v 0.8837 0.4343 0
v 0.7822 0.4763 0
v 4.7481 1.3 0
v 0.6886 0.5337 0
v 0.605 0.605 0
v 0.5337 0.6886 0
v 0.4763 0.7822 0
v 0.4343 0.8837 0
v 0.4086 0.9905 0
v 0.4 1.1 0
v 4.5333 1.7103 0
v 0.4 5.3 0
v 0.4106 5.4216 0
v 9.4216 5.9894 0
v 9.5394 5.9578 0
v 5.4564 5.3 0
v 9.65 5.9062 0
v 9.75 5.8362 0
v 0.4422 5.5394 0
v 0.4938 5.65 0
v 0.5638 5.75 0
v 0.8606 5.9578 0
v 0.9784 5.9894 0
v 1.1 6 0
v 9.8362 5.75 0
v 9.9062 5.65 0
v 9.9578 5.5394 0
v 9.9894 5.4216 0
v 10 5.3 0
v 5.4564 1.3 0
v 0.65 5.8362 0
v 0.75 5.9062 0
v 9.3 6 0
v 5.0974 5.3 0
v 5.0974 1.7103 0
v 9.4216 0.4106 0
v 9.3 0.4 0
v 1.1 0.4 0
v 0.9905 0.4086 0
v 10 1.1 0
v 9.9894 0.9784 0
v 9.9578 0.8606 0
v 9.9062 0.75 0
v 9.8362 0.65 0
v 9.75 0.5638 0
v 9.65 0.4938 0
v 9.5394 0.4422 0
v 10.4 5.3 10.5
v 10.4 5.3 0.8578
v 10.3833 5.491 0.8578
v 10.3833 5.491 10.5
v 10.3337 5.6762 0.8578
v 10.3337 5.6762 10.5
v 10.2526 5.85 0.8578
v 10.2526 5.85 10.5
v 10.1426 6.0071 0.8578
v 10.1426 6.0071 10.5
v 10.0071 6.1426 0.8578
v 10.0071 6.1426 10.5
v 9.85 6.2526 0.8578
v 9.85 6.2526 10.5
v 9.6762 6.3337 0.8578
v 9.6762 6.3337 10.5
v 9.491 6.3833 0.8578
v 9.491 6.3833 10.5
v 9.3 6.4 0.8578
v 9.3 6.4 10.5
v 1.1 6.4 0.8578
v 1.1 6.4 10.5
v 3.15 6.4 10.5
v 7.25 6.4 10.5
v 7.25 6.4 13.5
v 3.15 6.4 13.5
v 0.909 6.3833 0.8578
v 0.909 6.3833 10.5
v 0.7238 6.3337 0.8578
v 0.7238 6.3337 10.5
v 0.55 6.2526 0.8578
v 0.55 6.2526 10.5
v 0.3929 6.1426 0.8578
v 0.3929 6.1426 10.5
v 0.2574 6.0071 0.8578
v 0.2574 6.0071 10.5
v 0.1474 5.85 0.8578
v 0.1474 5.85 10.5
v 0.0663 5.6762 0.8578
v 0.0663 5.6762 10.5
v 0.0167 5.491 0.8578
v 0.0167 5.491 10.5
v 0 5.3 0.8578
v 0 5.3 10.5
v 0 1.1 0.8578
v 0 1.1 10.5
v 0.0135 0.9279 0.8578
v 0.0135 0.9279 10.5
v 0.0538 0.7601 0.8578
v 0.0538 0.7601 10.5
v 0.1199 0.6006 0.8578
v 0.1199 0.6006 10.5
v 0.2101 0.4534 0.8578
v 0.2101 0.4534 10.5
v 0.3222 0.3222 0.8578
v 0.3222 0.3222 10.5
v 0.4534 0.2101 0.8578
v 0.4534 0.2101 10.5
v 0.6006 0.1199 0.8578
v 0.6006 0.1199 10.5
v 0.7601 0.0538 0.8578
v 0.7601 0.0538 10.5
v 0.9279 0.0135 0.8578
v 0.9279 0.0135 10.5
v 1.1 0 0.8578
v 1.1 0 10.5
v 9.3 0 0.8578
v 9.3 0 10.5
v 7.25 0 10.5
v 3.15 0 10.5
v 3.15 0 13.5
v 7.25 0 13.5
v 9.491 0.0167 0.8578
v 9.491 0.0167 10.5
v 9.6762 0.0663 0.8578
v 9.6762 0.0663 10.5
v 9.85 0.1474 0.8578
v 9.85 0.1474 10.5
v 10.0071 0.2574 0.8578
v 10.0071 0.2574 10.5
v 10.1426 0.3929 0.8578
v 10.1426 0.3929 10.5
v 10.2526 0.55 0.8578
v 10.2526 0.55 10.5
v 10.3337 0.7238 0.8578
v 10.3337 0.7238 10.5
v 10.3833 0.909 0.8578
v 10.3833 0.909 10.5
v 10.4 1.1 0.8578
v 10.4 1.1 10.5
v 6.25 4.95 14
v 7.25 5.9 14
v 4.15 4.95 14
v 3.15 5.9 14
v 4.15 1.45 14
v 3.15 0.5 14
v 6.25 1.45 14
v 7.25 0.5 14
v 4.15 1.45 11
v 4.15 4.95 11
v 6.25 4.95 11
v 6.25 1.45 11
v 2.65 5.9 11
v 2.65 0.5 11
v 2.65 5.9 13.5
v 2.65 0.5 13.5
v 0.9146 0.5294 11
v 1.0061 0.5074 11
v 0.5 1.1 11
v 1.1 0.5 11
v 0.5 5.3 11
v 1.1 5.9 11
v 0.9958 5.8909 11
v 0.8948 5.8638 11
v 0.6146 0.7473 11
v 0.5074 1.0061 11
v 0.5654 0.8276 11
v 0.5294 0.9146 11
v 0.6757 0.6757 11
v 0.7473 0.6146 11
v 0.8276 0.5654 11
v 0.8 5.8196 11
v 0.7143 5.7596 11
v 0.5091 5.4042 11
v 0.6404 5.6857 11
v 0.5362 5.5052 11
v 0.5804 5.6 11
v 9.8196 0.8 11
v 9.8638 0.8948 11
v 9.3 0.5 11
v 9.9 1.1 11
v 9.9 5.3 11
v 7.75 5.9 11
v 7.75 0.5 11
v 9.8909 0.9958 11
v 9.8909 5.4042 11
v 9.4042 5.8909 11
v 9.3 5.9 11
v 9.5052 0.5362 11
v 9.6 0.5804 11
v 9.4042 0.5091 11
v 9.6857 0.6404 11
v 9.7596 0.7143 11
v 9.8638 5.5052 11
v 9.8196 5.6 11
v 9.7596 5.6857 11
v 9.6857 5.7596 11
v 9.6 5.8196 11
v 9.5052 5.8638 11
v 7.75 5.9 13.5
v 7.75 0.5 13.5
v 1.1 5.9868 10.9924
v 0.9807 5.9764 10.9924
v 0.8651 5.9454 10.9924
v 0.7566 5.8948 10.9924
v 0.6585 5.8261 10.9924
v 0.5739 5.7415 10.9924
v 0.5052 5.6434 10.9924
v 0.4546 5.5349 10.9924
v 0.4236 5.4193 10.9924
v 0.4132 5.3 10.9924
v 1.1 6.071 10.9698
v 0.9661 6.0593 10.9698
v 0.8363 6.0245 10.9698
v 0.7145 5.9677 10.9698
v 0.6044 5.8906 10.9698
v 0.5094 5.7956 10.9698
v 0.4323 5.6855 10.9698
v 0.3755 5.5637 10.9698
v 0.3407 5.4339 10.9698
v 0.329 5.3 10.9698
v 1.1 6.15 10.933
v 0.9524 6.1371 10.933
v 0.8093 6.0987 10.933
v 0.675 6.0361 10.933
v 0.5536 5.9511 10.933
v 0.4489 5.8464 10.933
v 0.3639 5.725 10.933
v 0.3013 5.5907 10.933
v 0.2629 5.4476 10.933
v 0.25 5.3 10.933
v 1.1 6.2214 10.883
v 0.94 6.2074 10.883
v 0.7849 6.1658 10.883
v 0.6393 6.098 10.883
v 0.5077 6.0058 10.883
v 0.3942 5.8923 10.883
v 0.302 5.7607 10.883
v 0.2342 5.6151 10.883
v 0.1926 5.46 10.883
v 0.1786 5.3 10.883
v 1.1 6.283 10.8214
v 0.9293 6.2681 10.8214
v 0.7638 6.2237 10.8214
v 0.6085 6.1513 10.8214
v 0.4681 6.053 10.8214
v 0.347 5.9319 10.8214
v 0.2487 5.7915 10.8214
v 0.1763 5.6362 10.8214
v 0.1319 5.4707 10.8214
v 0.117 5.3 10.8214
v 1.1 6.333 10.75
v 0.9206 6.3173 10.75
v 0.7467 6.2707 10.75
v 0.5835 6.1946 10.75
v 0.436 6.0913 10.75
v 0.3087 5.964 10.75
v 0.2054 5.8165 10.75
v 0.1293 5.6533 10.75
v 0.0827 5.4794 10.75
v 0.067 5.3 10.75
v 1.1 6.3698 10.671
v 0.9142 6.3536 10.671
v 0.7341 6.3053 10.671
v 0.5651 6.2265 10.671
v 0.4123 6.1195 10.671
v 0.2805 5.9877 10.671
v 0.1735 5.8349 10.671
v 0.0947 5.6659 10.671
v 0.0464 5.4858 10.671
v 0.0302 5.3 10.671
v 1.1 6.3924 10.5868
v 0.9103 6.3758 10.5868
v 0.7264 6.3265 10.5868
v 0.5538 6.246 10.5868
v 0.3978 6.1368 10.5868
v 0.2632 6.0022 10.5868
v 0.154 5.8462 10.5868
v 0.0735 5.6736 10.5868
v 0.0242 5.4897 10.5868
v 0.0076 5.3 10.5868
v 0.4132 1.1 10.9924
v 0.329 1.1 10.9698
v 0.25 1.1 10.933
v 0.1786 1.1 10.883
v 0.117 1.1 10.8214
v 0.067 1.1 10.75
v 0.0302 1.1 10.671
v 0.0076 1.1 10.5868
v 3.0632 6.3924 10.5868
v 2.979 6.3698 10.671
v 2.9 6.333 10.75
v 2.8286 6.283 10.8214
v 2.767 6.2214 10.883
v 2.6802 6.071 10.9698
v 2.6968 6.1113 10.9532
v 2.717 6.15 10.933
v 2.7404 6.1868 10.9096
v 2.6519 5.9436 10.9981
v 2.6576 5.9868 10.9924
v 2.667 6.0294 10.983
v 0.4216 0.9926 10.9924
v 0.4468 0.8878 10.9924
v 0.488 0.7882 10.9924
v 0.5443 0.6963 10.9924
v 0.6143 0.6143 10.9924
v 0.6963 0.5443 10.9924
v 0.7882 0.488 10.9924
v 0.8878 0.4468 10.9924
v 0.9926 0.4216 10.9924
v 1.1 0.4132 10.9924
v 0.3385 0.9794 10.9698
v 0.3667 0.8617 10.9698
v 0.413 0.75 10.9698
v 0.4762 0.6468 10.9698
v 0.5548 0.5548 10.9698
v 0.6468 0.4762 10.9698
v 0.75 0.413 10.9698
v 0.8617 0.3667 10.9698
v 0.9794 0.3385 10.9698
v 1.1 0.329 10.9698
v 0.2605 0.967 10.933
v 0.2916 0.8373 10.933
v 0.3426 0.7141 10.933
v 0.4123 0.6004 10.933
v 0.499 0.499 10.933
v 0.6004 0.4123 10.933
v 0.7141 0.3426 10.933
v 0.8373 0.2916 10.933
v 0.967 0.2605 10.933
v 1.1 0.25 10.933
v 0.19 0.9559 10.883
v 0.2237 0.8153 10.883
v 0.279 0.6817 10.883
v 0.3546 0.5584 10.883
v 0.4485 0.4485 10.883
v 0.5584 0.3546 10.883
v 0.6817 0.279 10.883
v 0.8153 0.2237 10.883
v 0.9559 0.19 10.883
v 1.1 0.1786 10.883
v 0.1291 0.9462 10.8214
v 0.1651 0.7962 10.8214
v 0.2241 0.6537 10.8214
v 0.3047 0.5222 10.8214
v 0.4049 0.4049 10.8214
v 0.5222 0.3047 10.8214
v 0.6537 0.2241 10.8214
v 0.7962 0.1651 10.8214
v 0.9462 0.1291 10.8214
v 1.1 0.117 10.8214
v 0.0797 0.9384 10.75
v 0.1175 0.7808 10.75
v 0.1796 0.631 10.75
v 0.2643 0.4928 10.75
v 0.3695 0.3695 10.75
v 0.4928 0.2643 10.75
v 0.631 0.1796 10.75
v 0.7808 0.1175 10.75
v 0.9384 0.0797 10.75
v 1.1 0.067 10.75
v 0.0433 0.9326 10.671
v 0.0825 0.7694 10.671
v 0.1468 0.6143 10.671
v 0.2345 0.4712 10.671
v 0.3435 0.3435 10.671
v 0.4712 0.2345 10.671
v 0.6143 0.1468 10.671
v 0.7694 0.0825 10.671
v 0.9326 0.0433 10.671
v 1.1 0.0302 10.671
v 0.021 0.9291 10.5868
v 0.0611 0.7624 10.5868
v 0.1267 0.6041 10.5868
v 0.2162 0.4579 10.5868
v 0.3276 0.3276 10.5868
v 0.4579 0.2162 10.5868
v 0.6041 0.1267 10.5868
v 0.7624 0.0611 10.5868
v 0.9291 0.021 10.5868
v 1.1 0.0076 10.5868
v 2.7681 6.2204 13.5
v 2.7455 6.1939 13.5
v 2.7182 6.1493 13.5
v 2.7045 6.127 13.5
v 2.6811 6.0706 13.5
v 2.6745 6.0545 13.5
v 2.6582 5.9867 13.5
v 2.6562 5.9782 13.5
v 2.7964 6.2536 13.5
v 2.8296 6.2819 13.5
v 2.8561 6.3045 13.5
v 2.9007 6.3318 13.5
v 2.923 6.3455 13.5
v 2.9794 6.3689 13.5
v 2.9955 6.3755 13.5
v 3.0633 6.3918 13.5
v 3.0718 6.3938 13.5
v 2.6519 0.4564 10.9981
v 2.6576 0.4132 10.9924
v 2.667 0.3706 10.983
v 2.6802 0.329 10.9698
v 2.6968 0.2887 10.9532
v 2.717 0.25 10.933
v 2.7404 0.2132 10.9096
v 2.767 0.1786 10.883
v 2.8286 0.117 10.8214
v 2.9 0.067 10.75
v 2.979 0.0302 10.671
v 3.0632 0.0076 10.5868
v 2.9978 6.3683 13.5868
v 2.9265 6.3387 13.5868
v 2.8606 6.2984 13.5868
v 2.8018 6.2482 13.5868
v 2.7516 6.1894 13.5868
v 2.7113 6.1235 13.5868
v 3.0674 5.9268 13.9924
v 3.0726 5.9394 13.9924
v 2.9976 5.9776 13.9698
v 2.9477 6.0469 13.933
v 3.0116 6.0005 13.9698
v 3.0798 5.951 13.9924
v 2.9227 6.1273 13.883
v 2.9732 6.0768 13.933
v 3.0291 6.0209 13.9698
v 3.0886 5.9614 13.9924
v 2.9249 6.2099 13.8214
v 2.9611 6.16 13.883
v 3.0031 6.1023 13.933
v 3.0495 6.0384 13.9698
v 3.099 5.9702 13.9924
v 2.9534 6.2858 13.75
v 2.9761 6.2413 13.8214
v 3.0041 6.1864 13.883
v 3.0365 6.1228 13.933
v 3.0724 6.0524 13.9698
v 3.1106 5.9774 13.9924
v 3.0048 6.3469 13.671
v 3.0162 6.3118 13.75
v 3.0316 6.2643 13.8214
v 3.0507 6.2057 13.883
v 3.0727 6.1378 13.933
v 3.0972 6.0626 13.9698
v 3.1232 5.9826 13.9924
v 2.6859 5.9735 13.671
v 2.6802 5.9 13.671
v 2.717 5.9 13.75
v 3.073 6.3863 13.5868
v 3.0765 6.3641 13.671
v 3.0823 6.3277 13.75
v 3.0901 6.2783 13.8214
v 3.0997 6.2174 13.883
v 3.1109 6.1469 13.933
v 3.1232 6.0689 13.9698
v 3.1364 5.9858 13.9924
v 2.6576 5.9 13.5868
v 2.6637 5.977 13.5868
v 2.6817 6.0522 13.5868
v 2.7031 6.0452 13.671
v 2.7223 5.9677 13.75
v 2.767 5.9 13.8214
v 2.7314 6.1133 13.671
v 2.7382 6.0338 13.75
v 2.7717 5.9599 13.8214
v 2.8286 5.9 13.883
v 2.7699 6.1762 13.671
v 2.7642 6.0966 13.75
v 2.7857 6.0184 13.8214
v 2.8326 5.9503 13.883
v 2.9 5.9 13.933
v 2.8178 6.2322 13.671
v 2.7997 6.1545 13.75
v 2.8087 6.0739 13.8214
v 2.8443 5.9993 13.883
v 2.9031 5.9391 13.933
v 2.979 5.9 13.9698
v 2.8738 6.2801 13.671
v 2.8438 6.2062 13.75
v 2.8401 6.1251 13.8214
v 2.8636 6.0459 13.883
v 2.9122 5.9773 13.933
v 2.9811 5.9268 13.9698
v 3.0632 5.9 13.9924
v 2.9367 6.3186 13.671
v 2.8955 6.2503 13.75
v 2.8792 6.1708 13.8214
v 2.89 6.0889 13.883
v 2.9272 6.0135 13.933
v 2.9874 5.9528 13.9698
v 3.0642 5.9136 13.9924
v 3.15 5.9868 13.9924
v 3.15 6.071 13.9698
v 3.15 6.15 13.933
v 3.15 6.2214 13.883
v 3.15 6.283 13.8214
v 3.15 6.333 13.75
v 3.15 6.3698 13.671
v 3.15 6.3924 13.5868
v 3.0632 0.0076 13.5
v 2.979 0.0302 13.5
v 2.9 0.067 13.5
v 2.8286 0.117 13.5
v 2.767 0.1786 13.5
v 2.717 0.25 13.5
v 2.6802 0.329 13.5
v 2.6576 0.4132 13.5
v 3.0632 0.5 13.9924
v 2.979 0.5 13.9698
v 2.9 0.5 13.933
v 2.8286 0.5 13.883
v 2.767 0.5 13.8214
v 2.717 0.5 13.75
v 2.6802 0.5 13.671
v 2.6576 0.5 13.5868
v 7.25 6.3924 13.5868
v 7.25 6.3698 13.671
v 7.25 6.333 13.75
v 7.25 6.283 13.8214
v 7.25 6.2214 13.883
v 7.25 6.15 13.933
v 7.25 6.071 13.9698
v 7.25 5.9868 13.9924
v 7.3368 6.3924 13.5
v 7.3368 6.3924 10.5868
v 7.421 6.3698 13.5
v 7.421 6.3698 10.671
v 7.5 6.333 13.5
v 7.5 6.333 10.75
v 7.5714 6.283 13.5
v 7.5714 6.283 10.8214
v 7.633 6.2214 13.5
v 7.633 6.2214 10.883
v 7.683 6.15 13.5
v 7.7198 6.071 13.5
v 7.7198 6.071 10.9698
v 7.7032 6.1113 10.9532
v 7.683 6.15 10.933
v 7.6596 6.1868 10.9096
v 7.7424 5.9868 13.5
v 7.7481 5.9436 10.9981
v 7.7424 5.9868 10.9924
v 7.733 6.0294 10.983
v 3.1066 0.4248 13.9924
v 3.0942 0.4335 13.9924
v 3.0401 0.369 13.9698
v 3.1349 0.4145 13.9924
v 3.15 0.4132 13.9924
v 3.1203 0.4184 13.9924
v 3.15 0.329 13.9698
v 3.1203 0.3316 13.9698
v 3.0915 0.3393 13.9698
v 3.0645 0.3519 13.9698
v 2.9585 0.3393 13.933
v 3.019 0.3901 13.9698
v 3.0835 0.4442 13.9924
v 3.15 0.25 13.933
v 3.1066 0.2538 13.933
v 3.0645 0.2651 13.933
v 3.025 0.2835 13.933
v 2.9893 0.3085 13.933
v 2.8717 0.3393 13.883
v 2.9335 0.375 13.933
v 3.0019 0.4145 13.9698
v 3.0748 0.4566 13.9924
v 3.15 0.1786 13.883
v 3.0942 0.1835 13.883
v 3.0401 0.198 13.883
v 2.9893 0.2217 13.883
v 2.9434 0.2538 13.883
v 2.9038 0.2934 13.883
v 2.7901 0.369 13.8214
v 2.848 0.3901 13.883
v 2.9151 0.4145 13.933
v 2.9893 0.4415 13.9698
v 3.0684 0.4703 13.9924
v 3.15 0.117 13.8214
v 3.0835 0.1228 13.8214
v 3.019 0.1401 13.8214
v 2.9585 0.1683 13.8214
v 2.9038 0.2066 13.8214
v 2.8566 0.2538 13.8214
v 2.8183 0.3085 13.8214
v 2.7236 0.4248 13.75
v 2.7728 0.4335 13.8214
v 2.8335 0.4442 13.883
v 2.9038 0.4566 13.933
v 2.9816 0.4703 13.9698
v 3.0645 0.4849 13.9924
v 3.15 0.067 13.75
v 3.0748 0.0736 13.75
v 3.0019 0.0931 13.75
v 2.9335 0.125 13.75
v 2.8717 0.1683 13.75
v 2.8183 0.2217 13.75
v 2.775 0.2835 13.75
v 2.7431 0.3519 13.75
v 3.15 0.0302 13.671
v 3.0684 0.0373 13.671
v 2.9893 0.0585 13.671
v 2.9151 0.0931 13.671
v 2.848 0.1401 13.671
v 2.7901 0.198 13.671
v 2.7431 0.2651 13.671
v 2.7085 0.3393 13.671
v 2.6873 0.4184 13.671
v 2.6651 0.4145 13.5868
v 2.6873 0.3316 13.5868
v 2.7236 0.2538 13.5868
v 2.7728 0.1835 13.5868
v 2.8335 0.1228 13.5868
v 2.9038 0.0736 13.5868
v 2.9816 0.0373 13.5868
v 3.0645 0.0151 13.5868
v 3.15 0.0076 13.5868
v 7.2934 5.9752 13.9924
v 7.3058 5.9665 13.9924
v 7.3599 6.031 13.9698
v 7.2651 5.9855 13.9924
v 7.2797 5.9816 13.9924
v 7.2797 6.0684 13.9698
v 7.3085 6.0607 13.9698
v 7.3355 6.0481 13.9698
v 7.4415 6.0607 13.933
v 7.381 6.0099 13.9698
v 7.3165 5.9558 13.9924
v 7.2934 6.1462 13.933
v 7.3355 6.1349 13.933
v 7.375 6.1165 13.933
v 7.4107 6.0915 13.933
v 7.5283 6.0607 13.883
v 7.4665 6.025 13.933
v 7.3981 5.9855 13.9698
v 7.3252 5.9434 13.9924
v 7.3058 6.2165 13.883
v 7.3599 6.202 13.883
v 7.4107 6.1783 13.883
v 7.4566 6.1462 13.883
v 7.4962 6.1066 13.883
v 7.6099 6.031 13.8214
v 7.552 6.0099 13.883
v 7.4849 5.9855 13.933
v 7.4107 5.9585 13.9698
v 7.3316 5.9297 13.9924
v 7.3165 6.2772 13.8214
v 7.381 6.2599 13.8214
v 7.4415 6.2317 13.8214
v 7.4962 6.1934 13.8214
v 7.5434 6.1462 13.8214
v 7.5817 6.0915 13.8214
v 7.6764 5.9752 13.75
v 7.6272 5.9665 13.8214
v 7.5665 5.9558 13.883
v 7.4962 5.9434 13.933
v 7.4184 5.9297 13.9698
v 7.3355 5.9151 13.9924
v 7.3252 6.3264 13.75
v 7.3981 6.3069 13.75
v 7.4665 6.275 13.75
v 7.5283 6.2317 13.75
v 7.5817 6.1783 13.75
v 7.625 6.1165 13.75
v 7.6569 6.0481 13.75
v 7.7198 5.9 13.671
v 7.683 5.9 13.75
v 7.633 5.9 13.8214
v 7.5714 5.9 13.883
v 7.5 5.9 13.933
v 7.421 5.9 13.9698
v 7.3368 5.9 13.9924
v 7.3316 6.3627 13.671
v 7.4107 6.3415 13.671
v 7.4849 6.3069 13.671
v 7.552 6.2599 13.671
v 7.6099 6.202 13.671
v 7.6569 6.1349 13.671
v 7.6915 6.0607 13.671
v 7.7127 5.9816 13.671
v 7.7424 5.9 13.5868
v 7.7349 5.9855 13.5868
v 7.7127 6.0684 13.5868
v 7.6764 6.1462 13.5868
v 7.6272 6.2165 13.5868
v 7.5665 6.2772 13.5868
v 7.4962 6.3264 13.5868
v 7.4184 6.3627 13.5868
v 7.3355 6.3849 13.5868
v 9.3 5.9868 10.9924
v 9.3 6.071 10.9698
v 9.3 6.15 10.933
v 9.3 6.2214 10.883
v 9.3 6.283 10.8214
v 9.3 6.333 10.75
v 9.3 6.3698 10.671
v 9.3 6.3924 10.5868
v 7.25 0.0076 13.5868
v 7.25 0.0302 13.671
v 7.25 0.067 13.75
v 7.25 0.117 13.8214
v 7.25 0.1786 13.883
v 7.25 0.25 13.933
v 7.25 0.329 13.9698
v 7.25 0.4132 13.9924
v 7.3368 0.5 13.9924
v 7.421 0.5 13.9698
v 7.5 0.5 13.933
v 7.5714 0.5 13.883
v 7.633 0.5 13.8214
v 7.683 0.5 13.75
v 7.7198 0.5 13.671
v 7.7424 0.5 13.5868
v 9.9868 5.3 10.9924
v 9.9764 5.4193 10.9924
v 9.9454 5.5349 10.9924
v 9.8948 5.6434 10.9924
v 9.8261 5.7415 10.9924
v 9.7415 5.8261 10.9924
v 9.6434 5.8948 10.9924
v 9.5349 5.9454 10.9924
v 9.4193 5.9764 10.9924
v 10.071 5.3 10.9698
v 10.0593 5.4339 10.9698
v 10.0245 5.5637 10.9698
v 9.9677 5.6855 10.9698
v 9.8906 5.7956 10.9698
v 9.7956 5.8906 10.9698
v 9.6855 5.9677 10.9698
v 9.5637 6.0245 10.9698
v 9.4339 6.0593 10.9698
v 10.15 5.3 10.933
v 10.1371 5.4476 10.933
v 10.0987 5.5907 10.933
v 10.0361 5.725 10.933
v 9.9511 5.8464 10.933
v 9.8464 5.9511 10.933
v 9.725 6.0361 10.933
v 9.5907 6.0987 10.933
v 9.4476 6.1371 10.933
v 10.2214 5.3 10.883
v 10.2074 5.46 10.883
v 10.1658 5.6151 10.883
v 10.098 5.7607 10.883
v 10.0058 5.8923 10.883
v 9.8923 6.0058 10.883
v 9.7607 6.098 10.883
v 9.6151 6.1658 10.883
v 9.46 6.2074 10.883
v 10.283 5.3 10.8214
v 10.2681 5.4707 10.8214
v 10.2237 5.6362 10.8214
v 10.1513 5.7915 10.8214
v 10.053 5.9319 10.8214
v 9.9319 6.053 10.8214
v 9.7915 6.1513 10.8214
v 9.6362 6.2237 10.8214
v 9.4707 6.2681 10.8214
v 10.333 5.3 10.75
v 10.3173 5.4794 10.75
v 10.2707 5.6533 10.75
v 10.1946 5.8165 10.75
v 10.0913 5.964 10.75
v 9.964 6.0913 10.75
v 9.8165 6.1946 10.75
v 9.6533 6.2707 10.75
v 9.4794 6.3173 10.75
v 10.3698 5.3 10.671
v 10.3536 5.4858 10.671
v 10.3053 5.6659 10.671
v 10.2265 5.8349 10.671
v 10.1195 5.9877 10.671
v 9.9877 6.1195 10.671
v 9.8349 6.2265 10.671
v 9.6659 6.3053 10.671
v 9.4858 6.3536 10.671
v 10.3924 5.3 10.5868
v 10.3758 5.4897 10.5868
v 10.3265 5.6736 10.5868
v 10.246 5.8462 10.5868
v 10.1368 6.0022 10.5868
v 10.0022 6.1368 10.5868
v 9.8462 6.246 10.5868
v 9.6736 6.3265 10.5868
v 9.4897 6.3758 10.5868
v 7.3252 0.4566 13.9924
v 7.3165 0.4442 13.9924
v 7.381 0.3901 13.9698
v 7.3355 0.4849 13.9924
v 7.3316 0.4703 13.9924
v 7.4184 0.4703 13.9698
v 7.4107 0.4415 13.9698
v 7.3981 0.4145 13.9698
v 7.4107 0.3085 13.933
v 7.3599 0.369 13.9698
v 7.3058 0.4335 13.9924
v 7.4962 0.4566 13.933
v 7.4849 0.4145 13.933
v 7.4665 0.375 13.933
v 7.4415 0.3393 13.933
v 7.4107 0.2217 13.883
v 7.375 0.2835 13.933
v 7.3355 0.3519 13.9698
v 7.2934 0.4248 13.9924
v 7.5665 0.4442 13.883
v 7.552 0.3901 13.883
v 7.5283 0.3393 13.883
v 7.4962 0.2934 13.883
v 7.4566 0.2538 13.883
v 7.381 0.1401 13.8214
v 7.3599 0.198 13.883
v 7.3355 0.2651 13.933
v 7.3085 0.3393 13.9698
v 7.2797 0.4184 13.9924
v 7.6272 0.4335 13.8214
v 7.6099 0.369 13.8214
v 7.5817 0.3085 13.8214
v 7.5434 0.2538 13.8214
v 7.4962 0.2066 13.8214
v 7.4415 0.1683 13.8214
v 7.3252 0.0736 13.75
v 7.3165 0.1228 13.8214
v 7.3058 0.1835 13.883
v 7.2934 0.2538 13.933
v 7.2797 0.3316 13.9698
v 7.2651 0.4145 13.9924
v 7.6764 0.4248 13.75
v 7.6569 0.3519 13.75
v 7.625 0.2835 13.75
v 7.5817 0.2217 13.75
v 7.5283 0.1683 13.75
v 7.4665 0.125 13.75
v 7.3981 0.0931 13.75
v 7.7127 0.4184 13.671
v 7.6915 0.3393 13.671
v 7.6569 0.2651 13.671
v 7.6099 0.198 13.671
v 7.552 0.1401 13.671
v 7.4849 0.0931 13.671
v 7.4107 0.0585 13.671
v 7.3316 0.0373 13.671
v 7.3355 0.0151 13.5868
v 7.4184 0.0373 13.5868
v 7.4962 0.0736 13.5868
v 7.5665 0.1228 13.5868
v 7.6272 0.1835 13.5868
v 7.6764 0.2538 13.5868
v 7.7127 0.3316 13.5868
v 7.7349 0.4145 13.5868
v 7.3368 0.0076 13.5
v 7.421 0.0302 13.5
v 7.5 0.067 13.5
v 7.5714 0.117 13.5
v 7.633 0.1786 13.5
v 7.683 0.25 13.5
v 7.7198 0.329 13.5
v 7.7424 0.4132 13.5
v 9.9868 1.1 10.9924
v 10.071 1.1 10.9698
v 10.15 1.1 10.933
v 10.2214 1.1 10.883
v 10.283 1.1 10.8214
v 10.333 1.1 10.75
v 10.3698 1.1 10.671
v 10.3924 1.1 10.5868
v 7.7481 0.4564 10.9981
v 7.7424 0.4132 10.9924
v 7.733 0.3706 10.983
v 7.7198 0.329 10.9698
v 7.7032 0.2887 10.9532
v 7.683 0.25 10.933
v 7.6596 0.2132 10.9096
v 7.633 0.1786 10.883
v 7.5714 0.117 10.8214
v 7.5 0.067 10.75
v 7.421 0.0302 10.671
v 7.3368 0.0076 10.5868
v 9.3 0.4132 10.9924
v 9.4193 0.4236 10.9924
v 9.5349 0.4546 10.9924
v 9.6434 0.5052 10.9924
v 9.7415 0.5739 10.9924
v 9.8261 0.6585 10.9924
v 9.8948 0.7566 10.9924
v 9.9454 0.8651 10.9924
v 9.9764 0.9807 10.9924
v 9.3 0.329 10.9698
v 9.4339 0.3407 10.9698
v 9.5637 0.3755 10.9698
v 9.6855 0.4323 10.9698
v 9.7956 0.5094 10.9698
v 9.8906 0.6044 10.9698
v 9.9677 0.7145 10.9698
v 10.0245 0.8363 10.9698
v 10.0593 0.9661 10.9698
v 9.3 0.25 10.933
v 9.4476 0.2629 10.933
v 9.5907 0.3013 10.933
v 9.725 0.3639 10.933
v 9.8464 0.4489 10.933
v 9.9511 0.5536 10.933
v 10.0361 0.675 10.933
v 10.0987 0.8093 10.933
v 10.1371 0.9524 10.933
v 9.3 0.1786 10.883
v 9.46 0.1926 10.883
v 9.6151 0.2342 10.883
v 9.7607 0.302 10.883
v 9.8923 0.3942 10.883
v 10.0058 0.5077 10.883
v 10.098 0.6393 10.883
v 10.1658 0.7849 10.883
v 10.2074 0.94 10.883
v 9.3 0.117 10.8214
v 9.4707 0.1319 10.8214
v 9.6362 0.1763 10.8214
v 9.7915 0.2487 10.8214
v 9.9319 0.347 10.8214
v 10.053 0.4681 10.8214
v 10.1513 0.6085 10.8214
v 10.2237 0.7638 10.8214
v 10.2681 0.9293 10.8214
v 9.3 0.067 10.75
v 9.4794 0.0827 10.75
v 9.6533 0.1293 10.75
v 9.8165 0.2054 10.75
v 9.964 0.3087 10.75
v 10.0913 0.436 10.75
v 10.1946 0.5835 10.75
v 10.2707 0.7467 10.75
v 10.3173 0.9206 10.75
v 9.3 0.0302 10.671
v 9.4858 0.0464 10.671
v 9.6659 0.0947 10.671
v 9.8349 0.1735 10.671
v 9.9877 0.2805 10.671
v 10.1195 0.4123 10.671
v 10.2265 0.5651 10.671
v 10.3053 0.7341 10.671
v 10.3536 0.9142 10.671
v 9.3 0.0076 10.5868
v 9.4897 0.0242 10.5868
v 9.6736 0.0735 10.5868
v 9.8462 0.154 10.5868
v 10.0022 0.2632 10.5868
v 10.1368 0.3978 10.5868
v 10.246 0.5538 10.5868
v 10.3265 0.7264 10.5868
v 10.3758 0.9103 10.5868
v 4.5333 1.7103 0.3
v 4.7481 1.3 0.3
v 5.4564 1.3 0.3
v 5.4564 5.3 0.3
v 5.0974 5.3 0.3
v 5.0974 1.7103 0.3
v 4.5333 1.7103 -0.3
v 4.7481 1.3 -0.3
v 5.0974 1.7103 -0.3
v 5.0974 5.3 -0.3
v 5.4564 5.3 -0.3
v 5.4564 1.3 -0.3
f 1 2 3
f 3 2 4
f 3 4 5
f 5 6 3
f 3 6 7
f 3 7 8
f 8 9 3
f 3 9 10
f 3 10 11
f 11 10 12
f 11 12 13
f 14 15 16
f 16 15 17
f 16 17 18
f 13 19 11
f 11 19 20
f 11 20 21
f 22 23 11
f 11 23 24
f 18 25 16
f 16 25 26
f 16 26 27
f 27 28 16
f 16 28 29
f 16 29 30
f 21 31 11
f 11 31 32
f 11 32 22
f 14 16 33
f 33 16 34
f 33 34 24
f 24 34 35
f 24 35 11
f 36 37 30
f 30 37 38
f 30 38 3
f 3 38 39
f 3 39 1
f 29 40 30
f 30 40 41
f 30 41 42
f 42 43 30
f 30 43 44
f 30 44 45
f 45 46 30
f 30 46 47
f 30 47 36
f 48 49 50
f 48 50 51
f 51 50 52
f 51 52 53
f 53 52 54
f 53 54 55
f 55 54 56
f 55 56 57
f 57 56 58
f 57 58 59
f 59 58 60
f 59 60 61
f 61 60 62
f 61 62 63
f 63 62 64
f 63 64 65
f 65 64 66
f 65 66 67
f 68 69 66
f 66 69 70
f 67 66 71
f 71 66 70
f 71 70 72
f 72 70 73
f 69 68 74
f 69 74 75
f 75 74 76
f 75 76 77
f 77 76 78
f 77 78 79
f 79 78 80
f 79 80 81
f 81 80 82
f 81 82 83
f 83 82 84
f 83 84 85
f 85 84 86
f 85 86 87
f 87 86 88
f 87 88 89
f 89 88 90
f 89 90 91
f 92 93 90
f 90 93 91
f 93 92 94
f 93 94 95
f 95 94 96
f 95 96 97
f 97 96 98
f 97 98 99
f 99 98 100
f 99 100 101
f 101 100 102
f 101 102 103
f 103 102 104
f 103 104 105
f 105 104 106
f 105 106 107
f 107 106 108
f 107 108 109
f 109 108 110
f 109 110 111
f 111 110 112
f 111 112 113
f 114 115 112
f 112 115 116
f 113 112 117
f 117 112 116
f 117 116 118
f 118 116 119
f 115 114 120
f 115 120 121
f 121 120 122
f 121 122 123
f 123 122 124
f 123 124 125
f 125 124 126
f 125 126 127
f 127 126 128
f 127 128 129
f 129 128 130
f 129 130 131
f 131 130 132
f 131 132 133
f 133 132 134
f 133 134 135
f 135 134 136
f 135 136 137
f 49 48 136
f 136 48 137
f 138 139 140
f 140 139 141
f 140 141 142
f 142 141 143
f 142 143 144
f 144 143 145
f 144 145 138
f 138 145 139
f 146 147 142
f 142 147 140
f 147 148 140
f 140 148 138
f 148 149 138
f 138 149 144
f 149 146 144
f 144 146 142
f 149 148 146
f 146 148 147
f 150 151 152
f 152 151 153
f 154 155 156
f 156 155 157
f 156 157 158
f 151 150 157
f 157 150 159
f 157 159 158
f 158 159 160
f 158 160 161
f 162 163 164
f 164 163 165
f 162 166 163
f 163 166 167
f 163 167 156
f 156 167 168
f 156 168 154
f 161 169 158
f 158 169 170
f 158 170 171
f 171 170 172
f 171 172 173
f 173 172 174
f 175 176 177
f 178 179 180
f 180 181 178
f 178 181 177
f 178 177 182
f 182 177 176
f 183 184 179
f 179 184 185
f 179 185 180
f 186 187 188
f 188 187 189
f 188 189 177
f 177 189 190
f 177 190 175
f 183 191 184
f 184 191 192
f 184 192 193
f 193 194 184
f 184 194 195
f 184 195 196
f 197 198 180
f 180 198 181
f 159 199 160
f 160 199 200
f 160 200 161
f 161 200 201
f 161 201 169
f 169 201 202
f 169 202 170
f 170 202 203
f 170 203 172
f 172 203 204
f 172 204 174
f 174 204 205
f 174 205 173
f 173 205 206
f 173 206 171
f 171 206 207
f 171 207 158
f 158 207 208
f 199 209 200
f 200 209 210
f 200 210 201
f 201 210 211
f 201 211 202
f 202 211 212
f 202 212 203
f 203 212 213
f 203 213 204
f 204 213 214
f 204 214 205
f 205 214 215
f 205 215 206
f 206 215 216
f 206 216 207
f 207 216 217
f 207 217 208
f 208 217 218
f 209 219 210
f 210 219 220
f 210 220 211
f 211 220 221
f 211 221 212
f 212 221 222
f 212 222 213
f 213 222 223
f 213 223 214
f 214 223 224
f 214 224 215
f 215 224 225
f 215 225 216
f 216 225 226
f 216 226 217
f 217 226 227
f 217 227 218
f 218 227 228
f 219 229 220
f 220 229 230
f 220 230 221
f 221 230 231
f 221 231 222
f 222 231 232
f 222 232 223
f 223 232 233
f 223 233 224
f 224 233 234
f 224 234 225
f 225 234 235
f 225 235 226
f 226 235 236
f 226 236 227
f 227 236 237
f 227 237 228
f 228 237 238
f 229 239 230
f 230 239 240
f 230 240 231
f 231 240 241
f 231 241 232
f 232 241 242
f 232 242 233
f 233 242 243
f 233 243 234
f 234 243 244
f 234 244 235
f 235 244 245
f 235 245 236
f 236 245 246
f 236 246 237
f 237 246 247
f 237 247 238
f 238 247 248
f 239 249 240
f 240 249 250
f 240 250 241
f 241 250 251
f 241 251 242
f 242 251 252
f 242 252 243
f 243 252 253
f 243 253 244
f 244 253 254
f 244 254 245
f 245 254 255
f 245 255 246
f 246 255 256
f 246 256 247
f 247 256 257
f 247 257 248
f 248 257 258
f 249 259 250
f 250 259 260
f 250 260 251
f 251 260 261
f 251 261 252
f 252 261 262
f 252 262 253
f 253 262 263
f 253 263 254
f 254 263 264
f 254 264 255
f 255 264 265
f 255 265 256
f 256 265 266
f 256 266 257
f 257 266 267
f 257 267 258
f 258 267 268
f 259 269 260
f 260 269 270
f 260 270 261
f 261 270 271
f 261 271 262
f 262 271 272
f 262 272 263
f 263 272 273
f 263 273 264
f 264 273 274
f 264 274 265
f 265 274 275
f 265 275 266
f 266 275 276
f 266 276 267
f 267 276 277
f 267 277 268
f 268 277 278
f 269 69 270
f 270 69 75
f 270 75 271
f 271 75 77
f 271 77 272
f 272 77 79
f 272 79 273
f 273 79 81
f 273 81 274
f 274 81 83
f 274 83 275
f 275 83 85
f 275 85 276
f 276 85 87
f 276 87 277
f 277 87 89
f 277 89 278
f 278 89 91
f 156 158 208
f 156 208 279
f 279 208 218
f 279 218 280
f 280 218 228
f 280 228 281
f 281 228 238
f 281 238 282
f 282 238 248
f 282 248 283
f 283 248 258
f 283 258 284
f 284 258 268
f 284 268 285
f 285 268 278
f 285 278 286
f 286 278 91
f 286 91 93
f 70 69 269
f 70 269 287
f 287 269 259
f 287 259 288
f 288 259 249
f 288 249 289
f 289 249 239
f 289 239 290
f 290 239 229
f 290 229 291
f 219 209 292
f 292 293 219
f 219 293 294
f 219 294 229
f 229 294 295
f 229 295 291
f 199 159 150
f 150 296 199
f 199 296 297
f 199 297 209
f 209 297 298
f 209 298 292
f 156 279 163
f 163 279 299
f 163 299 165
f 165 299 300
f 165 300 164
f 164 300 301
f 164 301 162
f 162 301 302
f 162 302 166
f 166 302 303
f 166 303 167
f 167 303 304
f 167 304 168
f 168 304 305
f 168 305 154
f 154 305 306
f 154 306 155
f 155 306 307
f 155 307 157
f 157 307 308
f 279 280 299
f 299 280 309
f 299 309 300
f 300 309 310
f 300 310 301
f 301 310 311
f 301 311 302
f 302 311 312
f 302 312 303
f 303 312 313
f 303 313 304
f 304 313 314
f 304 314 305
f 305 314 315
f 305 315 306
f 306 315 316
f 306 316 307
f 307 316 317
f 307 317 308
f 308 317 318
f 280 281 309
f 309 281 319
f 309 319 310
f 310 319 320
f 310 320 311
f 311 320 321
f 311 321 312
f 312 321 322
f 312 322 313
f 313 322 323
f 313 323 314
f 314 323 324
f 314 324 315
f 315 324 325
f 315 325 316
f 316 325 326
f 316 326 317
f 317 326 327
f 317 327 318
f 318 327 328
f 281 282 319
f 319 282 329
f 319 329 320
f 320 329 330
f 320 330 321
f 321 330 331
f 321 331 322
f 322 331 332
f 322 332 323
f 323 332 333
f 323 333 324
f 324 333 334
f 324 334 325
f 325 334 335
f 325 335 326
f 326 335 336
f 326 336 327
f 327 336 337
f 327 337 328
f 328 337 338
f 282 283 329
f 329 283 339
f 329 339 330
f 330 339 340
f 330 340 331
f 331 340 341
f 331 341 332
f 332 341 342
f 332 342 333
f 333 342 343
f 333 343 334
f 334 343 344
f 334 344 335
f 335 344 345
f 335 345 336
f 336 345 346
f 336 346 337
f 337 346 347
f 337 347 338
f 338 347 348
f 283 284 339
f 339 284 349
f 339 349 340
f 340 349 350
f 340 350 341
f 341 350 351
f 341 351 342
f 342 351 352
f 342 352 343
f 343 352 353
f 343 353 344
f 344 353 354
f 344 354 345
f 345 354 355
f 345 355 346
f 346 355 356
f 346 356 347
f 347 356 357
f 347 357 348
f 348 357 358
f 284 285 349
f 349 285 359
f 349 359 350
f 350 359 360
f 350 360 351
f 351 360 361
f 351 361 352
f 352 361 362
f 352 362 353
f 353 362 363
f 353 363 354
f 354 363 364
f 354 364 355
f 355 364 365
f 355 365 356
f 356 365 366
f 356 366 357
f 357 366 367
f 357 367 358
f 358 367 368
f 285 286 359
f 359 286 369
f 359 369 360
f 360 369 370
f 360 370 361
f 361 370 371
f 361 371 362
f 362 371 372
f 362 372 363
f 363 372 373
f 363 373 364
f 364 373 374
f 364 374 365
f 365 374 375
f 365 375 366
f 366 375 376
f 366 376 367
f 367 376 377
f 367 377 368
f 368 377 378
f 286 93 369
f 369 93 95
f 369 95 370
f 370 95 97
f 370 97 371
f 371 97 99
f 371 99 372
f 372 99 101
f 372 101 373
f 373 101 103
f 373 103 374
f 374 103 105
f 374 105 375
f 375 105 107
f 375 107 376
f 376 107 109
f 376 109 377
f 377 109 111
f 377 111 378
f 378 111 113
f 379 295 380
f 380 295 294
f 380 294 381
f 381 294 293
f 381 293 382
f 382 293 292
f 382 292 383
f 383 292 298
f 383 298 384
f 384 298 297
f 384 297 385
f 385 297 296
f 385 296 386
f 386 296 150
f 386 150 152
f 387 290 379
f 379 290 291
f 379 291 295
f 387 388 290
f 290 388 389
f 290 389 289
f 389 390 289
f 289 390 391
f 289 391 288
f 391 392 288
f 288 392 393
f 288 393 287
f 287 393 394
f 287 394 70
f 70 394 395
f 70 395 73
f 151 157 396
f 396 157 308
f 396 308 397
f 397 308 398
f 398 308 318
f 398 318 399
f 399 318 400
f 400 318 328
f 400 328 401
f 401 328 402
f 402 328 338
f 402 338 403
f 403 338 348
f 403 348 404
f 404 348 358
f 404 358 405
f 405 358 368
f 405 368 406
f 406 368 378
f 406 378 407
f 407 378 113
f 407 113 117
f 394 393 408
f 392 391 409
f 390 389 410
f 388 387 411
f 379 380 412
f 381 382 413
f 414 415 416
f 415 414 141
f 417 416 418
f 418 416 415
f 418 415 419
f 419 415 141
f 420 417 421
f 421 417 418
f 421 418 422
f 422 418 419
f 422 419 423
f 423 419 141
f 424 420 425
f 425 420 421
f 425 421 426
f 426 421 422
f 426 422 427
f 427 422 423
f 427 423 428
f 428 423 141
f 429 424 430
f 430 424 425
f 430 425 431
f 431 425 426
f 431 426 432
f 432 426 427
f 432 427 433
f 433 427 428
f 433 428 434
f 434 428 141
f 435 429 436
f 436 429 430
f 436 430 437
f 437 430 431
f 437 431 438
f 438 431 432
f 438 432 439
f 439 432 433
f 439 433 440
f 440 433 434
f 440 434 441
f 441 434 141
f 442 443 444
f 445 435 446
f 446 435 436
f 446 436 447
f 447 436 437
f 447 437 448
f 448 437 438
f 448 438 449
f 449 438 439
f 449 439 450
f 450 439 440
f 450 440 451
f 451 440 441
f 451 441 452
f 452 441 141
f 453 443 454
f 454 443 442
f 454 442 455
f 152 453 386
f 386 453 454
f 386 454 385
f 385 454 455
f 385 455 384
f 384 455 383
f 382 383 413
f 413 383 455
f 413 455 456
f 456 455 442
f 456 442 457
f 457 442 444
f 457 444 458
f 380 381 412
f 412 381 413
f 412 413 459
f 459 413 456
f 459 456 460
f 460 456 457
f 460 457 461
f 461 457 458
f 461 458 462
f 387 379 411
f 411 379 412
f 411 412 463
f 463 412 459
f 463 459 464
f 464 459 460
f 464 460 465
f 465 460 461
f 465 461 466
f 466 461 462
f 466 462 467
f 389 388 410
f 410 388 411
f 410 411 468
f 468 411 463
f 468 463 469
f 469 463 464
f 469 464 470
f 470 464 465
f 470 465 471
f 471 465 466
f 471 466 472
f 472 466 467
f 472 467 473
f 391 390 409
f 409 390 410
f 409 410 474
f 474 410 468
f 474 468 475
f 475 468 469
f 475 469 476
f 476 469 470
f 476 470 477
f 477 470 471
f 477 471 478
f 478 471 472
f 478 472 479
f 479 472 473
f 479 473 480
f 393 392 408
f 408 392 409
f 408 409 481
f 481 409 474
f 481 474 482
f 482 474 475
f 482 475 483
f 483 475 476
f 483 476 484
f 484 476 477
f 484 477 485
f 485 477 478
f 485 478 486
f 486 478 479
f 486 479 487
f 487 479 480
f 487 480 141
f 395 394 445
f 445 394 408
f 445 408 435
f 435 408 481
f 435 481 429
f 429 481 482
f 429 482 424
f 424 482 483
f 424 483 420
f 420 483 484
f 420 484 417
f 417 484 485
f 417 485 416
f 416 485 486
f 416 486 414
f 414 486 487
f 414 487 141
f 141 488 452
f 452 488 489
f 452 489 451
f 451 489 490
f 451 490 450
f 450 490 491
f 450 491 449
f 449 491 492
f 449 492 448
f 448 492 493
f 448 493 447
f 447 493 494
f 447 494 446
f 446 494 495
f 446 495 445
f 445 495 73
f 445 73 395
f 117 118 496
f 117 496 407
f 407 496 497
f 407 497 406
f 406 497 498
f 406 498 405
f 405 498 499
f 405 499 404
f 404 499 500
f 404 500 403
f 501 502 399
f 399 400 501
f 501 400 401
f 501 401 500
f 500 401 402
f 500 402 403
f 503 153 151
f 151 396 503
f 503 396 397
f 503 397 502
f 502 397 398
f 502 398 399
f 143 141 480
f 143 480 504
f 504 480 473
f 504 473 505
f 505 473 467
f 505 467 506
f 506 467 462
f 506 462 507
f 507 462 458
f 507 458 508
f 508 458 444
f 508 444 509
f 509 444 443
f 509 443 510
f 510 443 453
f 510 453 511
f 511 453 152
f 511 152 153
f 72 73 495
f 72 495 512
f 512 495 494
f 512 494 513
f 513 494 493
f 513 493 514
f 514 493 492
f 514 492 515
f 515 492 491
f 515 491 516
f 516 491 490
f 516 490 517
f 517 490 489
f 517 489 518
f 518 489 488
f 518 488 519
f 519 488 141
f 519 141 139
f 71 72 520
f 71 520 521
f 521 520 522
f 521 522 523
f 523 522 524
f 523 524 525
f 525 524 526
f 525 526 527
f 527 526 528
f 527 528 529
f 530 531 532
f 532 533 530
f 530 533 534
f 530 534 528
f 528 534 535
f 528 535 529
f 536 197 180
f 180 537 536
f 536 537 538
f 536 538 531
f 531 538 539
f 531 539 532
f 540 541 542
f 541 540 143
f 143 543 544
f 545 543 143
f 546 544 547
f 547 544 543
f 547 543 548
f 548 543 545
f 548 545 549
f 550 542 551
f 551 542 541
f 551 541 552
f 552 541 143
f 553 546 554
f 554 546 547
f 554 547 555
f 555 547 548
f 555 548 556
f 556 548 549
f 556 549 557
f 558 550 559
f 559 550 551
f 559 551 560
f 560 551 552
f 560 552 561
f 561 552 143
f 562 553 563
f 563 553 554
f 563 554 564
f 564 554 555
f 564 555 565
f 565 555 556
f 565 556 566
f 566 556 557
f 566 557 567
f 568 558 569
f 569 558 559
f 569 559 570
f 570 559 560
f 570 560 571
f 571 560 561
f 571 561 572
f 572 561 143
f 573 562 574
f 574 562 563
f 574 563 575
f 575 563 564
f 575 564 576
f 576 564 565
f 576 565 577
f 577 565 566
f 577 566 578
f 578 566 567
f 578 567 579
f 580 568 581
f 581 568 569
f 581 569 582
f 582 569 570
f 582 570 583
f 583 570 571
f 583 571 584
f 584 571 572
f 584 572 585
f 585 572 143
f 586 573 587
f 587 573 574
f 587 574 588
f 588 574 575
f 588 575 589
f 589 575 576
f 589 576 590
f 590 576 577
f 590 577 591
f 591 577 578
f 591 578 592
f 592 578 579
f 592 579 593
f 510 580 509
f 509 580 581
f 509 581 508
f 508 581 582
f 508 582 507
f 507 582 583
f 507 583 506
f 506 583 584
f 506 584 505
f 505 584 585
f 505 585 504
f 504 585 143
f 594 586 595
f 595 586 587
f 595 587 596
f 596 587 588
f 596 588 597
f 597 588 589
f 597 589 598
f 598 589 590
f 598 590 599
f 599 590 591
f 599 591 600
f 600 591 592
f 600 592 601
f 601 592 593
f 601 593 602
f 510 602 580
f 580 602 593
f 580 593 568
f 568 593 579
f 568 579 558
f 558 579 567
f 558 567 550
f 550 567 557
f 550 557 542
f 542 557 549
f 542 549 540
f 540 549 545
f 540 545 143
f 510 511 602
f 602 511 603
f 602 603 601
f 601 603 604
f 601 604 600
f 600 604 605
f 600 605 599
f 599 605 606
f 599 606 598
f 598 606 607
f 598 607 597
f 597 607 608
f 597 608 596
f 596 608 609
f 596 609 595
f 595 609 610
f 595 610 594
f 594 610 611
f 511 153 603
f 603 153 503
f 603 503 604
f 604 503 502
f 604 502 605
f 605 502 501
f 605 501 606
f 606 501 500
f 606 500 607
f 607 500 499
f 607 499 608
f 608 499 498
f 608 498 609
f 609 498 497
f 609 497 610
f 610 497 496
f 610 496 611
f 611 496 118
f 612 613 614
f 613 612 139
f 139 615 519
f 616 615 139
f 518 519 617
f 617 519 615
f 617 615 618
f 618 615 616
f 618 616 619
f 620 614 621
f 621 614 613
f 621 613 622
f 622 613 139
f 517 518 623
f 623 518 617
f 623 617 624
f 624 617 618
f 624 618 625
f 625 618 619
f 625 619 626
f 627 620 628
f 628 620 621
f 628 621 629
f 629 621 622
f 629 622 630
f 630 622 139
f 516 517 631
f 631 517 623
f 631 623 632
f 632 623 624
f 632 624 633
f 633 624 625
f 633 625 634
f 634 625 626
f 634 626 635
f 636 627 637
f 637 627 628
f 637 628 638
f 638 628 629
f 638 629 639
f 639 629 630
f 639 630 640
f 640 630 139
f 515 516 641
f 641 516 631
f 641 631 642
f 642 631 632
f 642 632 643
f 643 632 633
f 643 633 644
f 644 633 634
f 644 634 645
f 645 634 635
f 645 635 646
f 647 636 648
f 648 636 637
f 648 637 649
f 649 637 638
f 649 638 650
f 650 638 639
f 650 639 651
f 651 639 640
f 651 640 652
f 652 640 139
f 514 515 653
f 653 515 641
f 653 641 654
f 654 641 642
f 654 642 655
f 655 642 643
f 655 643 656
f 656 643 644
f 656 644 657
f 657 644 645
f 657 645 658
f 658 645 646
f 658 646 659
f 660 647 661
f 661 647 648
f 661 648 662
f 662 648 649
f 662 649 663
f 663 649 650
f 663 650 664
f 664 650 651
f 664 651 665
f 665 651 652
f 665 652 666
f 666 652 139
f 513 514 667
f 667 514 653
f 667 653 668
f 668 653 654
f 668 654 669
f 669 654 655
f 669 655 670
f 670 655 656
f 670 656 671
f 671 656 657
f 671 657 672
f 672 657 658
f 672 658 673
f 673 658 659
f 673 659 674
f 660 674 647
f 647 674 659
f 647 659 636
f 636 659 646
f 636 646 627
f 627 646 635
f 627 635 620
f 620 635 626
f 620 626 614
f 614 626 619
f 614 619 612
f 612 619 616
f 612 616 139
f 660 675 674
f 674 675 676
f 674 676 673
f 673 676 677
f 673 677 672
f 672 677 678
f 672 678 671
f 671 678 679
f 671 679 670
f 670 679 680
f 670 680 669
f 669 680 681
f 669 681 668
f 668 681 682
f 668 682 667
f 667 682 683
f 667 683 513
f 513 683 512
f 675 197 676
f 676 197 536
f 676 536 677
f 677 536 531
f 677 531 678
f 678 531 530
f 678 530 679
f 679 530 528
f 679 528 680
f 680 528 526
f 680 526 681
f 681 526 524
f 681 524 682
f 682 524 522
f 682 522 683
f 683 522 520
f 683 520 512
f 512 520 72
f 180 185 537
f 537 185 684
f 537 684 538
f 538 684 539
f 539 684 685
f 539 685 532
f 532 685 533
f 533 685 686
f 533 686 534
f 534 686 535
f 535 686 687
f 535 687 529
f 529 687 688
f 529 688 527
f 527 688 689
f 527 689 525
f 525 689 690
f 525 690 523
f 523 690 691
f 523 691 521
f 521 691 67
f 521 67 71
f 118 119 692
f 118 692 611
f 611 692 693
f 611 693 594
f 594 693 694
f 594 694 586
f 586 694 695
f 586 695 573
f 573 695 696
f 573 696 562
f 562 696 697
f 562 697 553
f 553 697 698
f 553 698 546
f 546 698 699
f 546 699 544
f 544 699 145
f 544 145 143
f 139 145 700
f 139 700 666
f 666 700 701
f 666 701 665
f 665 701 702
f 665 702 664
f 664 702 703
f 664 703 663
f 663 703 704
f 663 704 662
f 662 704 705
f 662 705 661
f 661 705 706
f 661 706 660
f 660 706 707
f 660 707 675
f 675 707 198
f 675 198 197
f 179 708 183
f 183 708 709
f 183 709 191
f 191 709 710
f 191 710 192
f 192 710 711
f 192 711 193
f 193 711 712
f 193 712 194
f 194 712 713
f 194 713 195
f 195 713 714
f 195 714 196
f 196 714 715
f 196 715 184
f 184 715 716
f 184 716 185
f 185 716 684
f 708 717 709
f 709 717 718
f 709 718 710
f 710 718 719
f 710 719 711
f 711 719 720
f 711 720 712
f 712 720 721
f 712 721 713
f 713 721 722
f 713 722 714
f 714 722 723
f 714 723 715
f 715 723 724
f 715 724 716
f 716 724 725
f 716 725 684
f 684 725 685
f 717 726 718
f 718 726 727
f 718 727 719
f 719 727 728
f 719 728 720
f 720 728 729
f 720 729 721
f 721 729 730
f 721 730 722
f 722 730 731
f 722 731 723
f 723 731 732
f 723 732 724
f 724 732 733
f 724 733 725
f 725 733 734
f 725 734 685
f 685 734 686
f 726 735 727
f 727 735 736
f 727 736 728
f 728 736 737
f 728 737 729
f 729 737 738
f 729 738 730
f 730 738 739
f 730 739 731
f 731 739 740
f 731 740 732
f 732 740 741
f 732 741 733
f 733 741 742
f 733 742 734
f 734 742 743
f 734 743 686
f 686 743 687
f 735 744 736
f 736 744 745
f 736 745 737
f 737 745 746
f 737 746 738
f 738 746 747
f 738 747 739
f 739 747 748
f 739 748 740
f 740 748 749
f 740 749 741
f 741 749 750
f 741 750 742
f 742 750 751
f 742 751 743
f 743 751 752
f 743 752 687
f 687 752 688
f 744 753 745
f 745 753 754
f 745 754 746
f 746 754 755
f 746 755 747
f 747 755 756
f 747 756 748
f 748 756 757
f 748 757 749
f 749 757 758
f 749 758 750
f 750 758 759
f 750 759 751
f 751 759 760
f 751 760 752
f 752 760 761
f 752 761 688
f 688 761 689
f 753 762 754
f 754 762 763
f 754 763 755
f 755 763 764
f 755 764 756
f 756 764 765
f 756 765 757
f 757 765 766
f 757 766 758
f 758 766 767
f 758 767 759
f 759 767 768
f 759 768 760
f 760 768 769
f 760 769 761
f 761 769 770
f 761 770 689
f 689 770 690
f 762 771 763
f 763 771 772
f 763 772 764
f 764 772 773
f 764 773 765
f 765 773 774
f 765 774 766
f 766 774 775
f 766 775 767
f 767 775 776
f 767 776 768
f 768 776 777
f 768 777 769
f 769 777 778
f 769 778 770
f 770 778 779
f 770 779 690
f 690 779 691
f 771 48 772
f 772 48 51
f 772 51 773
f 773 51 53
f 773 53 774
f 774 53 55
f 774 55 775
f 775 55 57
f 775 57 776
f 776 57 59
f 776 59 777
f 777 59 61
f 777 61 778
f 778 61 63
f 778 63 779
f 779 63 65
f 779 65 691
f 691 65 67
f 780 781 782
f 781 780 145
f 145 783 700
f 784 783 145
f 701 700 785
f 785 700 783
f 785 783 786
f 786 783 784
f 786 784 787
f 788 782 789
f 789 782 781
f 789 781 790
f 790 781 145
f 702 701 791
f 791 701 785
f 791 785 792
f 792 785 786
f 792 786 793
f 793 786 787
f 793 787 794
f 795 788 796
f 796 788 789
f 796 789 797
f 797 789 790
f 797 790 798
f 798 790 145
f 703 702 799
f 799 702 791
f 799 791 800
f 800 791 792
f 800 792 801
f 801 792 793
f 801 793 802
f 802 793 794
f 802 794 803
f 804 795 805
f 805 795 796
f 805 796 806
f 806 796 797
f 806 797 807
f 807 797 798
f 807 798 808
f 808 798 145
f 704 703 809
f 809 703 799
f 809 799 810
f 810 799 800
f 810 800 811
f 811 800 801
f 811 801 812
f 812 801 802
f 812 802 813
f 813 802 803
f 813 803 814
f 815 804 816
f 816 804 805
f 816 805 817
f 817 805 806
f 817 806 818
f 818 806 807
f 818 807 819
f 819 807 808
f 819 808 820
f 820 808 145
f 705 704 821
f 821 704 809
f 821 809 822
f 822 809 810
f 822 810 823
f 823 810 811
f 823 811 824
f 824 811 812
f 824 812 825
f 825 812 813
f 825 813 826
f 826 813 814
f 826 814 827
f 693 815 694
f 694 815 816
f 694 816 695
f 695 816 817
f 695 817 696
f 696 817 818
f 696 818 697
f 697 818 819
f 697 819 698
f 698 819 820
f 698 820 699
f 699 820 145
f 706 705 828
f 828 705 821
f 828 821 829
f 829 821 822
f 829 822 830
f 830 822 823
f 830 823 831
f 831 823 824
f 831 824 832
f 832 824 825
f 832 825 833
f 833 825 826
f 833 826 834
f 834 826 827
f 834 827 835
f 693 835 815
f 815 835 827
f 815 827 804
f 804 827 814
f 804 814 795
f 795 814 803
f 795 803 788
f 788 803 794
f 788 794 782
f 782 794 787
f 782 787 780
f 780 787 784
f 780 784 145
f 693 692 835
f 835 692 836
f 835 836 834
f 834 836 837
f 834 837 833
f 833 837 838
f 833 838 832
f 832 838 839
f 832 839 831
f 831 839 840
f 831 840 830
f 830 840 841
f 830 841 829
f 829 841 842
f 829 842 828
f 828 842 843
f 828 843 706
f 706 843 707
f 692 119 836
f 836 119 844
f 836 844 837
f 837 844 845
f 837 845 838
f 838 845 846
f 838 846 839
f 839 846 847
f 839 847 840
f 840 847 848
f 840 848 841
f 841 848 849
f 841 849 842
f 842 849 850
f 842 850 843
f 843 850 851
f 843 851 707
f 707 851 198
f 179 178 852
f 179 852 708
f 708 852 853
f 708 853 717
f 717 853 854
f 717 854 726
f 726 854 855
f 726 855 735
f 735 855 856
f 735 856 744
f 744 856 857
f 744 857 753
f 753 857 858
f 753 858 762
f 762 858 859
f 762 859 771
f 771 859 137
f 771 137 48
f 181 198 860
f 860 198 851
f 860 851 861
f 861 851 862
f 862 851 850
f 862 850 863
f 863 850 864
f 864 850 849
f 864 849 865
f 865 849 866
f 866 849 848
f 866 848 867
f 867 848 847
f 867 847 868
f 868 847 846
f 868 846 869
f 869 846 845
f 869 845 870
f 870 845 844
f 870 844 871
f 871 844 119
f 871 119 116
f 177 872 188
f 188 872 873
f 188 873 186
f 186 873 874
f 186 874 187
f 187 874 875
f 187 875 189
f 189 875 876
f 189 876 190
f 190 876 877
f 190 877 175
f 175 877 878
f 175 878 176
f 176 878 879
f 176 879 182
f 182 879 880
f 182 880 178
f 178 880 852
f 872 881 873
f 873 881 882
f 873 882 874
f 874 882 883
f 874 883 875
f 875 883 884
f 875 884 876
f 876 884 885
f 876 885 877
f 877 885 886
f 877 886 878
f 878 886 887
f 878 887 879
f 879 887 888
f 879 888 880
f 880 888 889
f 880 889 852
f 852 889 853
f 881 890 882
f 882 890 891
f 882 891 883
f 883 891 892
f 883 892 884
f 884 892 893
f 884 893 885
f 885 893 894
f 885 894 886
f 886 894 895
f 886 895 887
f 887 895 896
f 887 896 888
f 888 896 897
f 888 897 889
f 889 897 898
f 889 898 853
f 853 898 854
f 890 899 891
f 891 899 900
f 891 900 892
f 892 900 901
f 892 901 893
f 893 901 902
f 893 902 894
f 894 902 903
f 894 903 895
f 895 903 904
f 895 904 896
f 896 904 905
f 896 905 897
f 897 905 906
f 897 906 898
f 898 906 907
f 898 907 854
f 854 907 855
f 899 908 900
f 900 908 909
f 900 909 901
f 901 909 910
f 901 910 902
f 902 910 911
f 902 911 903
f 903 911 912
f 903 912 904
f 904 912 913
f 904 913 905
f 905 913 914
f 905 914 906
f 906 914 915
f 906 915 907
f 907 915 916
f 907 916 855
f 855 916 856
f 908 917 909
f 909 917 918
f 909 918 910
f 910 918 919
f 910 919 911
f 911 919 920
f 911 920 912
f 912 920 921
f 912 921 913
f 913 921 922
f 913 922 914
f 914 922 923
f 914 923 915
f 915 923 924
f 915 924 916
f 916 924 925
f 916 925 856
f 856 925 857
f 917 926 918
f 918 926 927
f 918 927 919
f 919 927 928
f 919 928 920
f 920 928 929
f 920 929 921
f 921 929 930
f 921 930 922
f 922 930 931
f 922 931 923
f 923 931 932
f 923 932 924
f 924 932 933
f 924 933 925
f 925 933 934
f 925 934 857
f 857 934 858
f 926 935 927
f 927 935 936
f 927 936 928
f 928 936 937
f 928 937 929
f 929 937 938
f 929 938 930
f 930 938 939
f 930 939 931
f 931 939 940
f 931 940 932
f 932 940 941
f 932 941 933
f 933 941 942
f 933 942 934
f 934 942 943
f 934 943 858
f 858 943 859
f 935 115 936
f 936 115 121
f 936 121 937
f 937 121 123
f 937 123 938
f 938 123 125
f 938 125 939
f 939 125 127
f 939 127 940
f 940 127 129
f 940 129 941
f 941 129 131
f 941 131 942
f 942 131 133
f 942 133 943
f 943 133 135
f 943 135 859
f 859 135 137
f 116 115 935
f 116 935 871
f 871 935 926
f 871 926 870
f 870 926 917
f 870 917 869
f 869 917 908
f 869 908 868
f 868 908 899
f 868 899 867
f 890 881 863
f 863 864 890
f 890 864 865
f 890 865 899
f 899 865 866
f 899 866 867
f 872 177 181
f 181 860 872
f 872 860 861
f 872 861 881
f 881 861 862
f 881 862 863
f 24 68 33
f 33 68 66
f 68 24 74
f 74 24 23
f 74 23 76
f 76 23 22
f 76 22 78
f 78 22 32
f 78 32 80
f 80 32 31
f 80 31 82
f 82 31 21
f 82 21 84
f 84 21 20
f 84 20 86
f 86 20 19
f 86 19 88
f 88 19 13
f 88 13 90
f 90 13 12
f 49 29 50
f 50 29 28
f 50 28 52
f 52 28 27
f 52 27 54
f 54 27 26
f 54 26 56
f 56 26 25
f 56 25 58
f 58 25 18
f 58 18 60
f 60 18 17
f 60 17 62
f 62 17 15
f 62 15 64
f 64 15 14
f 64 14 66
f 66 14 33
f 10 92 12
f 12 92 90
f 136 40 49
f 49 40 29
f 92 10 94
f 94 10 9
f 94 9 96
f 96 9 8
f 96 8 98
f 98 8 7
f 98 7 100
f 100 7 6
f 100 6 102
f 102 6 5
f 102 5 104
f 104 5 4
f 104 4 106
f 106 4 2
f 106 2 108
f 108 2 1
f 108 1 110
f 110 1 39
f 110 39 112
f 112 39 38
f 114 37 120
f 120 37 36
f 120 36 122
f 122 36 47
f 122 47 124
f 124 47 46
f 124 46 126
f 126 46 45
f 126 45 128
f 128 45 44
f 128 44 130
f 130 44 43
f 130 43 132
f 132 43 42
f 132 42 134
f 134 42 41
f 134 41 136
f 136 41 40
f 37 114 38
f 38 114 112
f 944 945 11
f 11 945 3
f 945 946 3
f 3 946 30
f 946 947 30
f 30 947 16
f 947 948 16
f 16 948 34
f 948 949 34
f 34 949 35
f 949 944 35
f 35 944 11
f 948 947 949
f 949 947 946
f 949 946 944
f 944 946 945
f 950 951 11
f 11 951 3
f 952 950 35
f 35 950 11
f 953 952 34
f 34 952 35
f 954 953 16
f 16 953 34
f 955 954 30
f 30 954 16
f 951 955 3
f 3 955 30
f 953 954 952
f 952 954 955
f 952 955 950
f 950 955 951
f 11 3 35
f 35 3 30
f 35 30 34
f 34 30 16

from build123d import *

# Parameters (mm, degrees)
BOSS_EXTRU_1_DEPTH      = 14
ESQUISSE3_W             = 2.1
ESQUISSE3_H             = 3.5
ENL_V_MAT_EXTRU_1_DEPTH = 3
ESQUISSE4_OUTSIDE_W     = 16.116
ESQUISSE4_OUTSIDE_H     = 12.116
ESQUISSE4_OUTSIDE_W_2   = 5.1
ESQUISSE4_OUTSIDE_H_2   = 6.4
ENL_V_MAT_EXTRU_2_DEPTH = 3
CONG_1_R                = 0.5
CHANFREIN1_SIZE         = 0.4
CHANFREIN1_SIZE2        = 0.857802768
ENL_V_MAT_EXTRU_3_DEPTH = 0.3
BOSS_EXTRU_2_DEPTH      = 0.3


with BuildPart() as part:
    # Esquisse2 → Boss.-Extru.1 (new body)
    with BuildSketch(Plane.XY):
        with BuildLine():
            Line((1.1, 0), (9.3, 0))
            ThreePointArc((9.3, 0), (10.077817459, 0.322182541), (10.4, 1.1))
            Line((10.4, 1.1), (10.4, 5.3))
            ThreePointArc((10.4, 5.3), (10.077817459, 6.077817459), (9.3, 6.4))
            Line((9.3, 6.4), (1.1, 6.4))
            ThreePointArc((1.1, 6.4), (0.322182541, 6.077817459), (0, 5.3))
            Line((0, 5.3), (0, 1.1))
            ThreePointArc((0, 1.1), (0.322182541, 0.322182541), (1.1, 0))
        make_face()
    extrude(amount=BOSS_EXTRU_1_DEPTH)

    # Esquisse3 → Enlèv. mat.-Extru.1 (cut)
    with BuildSketch(Plane.XY.offset(14)):
        with Locations((5.2, 3.2)):
            Rectangle(ESQUISSE3_W, ESQUISSE3_H)
    extrude(amount=-ENL_V_MAT_EXTRU_1_DEPTH, mode=Mode.SUBTRACT)

    # Esquisse4 outside → Enlèv. mat.-Extru.2 (cut)
    with BuildSketch(Plane.XY.offset(14)):
        with Locations((5.2, 3.2)):
            Rectangle(ESQUISSE4_OUTSIDE_W, ESQUISSE4_OUTSIDE_H)
        with Locations((5.2, 3.2)):
            Rectangle(ESQUISSE4_OUTSIDE_W_2, ESQUISSE4_OUTSIDE_H_2, mode=Mode.SUBTRACT)
    extrude(amount=-ENL_V_MAT_EXTRU_2_DEPTH, mode=Mode.SUBTRACT)

    # Congé1
    cong_1_edges = [part.edges().sort_by_distance(p)[0] for p in [
        (5.2, 6.4, 14),
        (5.2, 0, 14),
        (10.4, 3.2, 11),
        (1.875, 6.4, 11),
        (0.322182541, 6.077817459, 11),
        (0, 3.2, 11),
        (0.322182541, 0.322182541, 11),
        (1.875, 0, 11),
        (8.525, 0, 11),
        (10.077817459, 0.322182541, 11),
        (10.077817459, 6.077817459, 11),
        (8.525, 6.4, 11),
        (7.75, 6.4, 12.5),
        (7.75, 3.2, 14),
        (7.75, 0, 12.5),
        (2.65, 0, 12.5),
        (2.65, 3.2, 14),
        (2.65, 6.4, 12.5),
    ]]
    fillet(cong_1_edges, radius=CONG_1_R)

    # Chanfrein1
    chanfrein1_edges = [part.edges().sort_by_distance(p)[0] for p in [
        (5.2, 6.4, 0),
        (10.077817459, 6.077817459, 0),
        (10.4, 3.2, 0),
        (10.077817459, 0.322182541, 0),
        (5.2, 0, 0),
        (0.322182541, 0.322182541, 0),
        (0, 3.2, 0),
        (0.322182541, 6.077817459, 0),
    ]]
    chanfrein1_side = [part.faces().sort_by_distance(p)[0] for p in [
        (5.2, 3.2, 0),
    ]]
    chamfer(chanfrein1_edges, length=CHANFREIN1_SIZE, length2=CHANFREIN1_SIZE2, reference=chanfrein1_side[0])

    # Esquisse5 → Enlèv. mat.-Extru.3 (cut)
    with BuildSketch(Plane(origin=(0, 0, 0), x_dir=(-1, 0, 0), z_dir=(0, 0, -1))):
        Polygon((-4.748076923, 1.3), (-5.456410256, 1.3), (-5.456410256, 5.3), (-5.097435897, 5.3), (-5.097435897, 1.71025641), (-4.533333333, 1.71025641), align=None)
    extrude(amount=-ENL_V_MAT_EXTRU_3_DEPTH, mode=Mode.SUBTRACT)


with BuildPart() as body_2:
    # Esquisse5<2> → Boss.-Extru.2 (new body)
    with BuildSketch(Plane(origin=(0, 0, 0), x_dir=(-1, 0, 0), z_dir=(0, 0, -1))):
        Polygon((-4.748076923, 1.3), (-5.456410256, 1.3), (-5.456410256, 5.3), (-5.097435897, 5.3), (-5.097435897, 1.71025641), (-4.533333333, 1.71025641), align=None)
    extrude(amount=BOSS_EXTRU_2_DEPTH)


solid = Compound([part.part, body_2.part])
